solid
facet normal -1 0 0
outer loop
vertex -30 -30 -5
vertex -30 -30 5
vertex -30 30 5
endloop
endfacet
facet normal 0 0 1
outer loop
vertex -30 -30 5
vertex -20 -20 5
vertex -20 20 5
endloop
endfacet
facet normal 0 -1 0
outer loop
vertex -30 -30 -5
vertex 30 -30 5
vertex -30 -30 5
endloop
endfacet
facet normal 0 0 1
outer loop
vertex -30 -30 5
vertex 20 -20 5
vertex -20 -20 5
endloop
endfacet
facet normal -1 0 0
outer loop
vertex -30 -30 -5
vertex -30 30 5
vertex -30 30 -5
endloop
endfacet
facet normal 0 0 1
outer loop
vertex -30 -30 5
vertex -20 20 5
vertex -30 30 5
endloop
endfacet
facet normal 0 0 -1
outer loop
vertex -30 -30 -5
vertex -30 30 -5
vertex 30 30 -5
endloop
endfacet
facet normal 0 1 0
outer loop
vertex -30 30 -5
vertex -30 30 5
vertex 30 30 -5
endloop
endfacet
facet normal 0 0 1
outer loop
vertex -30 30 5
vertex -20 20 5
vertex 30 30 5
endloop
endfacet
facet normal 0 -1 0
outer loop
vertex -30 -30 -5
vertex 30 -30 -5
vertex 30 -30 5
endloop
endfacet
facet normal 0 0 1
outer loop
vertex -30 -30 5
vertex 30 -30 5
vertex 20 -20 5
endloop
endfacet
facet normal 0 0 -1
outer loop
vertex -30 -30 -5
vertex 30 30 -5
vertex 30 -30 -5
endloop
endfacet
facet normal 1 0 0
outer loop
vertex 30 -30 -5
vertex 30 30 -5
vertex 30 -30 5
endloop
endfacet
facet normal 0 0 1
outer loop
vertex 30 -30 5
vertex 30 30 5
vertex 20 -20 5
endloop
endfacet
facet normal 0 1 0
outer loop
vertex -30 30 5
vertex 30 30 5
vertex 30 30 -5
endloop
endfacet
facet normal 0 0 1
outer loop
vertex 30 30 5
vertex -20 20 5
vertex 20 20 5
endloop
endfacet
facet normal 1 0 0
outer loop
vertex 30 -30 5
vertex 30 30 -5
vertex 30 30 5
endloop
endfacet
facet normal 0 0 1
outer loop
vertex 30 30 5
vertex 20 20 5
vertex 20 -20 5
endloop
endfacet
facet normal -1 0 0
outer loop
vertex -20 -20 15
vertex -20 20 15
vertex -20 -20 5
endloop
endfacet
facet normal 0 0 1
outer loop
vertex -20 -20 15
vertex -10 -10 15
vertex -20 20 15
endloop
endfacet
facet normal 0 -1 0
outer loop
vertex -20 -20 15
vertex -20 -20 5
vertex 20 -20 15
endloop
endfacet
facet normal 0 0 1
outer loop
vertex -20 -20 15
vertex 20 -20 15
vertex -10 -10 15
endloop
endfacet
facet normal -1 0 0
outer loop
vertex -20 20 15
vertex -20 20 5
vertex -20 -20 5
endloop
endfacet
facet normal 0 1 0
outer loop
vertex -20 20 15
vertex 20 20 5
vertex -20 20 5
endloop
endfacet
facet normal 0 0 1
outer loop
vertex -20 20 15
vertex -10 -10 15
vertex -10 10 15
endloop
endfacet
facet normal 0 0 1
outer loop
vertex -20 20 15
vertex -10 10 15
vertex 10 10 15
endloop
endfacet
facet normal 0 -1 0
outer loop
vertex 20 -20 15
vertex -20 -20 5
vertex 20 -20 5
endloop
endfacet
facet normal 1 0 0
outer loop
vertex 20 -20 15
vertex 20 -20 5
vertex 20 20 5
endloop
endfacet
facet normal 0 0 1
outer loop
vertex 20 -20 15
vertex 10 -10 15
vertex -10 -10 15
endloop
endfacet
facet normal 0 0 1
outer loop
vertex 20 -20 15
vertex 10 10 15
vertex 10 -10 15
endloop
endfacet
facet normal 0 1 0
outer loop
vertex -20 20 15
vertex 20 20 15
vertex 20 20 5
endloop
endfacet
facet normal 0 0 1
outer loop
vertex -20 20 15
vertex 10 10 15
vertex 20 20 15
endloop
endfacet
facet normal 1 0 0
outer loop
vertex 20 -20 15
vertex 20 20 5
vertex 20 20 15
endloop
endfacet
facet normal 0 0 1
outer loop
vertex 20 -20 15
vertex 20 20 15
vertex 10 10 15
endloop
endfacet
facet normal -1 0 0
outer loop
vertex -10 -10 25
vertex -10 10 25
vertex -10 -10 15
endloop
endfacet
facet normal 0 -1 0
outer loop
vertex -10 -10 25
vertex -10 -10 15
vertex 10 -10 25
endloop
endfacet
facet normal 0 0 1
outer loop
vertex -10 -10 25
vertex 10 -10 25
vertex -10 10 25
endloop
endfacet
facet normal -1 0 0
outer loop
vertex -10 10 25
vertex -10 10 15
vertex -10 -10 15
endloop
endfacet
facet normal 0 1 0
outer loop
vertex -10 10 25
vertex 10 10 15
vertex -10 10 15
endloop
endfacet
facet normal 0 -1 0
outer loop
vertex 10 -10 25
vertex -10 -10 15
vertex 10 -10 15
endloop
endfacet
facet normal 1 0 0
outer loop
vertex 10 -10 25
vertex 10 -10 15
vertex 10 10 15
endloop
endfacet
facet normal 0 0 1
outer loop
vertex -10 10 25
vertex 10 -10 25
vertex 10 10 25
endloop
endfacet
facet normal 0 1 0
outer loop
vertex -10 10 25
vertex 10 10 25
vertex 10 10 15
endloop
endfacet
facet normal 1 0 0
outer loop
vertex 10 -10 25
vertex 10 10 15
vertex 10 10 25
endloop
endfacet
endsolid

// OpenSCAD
module pyramid() {
    translate([0, 0, 0])
        cube([60, 60, 10], center=true);
    translate([0, 0, 10])
        cube([40, 40, 10], center=true);
    translate([0, 0, 20])
        cube([20, 20, 10], center=true);
}

pyramid();
